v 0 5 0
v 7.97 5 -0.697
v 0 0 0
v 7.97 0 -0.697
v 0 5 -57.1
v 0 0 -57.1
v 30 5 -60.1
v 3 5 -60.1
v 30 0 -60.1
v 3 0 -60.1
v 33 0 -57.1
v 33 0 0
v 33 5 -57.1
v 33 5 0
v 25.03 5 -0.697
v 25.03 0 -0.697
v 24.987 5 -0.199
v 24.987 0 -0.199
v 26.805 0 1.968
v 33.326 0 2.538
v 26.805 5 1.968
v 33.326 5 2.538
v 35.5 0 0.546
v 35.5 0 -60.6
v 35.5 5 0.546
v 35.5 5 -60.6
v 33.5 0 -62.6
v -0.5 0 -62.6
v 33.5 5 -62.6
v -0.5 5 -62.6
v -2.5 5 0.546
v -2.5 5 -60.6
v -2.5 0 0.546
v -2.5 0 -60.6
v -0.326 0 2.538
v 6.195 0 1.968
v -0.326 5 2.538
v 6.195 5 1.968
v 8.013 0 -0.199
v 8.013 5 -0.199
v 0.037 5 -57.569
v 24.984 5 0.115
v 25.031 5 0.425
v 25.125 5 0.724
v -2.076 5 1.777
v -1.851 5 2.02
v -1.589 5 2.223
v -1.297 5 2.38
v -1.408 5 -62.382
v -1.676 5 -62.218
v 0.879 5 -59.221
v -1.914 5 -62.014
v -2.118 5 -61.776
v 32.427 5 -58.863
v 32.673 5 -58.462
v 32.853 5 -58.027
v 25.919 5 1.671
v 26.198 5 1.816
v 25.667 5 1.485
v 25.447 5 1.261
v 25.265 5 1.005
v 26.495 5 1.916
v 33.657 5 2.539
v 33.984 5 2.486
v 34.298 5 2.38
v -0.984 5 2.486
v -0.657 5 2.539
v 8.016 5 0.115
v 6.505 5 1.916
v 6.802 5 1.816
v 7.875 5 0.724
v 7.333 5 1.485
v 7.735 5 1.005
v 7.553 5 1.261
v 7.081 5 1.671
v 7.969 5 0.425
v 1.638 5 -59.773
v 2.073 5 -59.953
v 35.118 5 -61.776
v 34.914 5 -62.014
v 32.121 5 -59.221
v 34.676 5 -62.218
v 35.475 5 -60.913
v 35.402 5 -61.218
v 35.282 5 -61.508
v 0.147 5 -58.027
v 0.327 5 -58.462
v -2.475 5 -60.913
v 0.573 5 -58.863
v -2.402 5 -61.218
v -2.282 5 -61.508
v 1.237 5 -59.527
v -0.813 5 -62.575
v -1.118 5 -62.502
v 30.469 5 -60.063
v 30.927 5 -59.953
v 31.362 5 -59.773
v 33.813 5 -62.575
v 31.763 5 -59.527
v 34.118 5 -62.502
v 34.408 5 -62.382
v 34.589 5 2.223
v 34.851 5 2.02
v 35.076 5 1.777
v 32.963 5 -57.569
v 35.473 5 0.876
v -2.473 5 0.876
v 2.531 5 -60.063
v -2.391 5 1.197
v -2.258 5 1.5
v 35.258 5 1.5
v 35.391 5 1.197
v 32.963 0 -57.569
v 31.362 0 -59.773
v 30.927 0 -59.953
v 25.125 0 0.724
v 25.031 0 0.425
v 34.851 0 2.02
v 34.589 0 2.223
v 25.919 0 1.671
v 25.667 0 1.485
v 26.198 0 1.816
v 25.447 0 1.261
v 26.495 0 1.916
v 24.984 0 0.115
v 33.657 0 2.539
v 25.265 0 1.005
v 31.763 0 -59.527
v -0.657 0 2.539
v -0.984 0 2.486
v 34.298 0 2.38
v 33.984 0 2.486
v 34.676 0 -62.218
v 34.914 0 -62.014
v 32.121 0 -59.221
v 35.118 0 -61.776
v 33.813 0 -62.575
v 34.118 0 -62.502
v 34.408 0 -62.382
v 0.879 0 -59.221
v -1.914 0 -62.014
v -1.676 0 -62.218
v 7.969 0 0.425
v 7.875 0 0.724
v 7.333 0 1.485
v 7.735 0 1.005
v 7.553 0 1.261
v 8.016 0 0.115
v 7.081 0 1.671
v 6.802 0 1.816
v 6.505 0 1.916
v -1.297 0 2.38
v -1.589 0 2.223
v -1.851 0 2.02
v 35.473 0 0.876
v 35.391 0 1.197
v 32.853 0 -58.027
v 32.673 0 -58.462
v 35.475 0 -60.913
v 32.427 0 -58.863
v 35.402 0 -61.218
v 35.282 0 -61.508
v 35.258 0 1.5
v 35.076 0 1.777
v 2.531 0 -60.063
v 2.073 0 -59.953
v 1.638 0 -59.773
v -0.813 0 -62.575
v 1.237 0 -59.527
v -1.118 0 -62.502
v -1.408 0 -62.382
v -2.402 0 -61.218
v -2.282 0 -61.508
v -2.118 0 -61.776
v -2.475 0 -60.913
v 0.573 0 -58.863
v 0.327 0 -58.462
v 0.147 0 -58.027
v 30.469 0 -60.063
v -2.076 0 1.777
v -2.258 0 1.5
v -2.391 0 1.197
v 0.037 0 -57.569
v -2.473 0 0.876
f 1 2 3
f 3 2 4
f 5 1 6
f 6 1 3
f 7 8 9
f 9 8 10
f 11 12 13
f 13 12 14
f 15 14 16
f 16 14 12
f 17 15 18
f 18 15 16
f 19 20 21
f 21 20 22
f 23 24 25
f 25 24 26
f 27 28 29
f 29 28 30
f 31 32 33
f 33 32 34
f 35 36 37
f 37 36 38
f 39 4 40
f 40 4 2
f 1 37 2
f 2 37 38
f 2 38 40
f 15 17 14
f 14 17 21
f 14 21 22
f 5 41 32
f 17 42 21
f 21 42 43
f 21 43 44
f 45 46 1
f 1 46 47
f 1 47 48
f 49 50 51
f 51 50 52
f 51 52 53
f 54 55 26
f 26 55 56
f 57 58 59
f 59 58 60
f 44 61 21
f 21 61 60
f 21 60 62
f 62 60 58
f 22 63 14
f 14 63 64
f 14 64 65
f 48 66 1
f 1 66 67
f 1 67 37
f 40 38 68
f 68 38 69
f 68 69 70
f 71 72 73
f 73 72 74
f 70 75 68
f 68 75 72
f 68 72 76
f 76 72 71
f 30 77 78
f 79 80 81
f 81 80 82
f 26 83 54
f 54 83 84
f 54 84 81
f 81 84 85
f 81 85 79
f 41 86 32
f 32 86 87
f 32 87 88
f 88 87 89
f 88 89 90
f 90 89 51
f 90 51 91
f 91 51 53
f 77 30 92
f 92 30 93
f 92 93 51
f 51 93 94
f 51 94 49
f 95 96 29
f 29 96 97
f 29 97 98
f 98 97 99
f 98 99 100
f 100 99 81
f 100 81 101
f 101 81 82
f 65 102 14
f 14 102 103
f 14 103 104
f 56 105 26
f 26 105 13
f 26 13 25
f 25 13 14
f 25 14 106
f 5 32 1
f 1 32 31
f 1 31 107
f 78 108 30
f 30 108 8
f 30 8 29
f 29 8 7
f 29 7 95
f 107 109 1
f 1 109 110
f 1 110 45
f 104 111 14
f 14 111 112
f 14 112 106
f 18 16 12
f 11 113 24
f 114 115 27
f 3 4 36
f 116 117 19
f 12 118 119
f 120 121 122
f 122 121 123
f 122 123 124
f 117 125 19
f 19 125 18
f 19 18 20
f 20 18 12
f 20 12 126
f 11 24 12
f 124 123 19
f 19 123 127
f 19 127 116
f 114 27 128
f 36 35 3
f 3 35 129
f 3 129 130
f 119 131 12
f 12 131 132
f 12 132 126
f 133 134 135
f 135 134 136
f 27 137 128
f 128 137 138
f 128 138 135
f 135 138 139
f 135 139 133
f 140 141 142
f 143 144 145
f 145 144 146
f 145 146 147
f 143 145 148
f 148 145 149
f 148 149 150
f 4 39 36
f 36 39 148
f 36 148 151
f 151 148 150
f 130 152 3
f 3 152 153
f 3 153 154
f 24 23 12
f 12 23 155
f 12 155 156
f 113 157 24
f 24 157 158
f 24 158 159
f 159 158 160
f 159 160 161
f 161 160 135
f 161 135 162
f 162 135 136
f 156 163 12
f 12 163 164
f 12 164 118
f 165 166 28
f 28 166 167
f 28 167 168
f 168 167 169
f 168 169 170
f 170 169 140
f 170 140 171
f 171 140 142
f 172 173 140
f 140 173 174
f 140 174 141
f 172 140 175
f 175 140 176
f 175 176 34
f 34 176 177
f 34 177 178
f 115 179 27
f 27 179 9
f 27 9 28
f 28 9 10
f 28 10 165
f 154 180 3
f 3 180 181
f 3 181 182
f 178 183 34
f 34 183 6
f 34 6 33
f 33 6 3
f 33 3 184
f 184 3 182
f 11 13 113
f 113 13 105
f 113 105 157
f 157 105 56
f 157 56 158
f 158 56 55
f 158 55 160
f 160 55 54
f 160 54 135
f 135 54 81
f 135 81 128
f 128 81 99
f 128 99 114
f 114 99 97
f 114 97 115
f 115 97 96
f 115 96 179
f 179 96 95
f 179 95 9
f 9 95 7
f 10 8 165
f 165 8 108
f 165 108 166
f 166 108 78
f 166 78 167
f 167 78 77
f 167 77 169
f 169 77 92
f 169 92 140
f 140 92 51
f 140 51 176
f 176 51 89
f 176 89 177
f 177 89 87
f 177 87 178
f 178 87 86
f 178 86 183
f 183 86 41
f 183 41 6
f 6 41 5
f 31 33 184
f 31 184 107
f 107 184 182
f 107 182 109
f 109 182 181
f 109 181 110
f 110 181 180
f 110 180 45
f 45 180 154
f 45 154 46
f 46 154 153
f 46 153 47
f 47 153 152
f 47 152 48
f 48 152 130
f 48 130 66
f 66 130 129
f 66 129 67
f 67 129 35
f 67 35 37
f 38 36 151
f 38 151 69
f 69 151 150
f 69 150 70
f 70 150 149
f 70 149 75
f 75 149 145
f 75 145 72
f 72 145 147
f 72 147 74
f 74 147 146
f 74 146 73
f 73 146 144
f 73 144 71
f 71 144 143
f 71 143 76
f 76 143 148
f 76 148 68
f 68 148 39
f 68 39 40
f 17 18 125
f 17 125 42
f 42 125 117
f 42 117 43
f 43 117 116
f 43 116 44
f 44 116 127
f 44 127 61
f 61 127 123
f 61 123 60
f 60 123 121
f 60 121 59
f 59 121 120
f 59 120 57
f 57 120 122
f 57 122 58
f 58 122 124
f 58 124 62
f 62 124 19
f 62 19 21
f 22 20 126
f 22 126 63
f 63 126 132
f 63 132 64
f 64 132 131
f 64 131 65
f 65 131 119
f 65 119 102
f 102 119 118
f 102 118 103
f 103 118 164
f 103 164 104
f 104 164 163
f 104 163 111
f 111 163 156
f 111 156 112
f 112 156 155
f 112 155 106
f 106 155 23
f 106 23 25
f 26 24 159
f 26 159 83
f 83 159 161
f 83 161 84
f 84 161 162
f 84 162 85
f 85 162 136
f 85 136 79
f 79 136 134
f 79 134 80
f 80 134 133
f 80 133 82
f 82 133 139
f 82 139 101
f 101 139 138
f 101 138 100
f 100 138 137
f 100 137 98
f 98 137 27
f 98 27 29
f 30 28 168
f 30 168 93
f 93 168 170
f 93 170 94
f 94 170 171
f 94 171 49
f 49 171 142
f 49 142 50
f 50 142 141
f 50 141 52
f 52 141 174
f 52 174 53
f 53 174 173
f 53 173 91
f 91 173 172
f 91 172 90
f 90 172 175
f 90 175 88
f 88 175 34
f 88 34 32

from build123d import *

# Parameters (mm, degrees)
BOSS_EXTRUDE1_DEPTH = 5
FILLET1_R           = 3
FILLET2_R           = 2


with BuildPart() as part:
    # Sketch2 → Boss-Extrude1 (new body)
    with BuildSketch(Plane(origin=(0, 0, 0), x_dir=(1, 0, 0), z_dir=(0, 1, 0))):
        Polygon((0, 0), (0, 60.1), (33, 60.1), (33, 0), (25.030442415, 0.697245942), (24.812553058, -1.793240803), (35.5, -2.728271253), (35.5, 62.6), (-2.5, 62.6), (-2.5, -2.728271253), (8.187446942, -1.793240803), (7.969557585, 0.697245942), align=None)
    extrude(amount=BOSS_EXTRUDE1_DEPTH)

    # Fillet1
    fillet1_edges = [part.edges().sort_by_distance(p)[0] for p in [
        (33, 2.5, -60.1),
        (0, 2.5, -60.1),
    ]]
    fillet(fillet1_edges, radius=FILLET1_R)

    # Fillet2
    fillet2_edges = [part.edges().sort_by_distance(p)[0] for p in [
        (8.187446942, 2.5, 1.793240803),
        (-2.5, 2.5, 2.728271253),
        (-2.5, 2.5, -62.6),
        (35.5, 2.5, -62.6),
        (35.5, 2.5, 2.728271253),
        (24.812553058, 2.5, 1.793240803),
    ]]
    fillet(fillet2_edges, radius=FILLET2_R)


solid = part.part
